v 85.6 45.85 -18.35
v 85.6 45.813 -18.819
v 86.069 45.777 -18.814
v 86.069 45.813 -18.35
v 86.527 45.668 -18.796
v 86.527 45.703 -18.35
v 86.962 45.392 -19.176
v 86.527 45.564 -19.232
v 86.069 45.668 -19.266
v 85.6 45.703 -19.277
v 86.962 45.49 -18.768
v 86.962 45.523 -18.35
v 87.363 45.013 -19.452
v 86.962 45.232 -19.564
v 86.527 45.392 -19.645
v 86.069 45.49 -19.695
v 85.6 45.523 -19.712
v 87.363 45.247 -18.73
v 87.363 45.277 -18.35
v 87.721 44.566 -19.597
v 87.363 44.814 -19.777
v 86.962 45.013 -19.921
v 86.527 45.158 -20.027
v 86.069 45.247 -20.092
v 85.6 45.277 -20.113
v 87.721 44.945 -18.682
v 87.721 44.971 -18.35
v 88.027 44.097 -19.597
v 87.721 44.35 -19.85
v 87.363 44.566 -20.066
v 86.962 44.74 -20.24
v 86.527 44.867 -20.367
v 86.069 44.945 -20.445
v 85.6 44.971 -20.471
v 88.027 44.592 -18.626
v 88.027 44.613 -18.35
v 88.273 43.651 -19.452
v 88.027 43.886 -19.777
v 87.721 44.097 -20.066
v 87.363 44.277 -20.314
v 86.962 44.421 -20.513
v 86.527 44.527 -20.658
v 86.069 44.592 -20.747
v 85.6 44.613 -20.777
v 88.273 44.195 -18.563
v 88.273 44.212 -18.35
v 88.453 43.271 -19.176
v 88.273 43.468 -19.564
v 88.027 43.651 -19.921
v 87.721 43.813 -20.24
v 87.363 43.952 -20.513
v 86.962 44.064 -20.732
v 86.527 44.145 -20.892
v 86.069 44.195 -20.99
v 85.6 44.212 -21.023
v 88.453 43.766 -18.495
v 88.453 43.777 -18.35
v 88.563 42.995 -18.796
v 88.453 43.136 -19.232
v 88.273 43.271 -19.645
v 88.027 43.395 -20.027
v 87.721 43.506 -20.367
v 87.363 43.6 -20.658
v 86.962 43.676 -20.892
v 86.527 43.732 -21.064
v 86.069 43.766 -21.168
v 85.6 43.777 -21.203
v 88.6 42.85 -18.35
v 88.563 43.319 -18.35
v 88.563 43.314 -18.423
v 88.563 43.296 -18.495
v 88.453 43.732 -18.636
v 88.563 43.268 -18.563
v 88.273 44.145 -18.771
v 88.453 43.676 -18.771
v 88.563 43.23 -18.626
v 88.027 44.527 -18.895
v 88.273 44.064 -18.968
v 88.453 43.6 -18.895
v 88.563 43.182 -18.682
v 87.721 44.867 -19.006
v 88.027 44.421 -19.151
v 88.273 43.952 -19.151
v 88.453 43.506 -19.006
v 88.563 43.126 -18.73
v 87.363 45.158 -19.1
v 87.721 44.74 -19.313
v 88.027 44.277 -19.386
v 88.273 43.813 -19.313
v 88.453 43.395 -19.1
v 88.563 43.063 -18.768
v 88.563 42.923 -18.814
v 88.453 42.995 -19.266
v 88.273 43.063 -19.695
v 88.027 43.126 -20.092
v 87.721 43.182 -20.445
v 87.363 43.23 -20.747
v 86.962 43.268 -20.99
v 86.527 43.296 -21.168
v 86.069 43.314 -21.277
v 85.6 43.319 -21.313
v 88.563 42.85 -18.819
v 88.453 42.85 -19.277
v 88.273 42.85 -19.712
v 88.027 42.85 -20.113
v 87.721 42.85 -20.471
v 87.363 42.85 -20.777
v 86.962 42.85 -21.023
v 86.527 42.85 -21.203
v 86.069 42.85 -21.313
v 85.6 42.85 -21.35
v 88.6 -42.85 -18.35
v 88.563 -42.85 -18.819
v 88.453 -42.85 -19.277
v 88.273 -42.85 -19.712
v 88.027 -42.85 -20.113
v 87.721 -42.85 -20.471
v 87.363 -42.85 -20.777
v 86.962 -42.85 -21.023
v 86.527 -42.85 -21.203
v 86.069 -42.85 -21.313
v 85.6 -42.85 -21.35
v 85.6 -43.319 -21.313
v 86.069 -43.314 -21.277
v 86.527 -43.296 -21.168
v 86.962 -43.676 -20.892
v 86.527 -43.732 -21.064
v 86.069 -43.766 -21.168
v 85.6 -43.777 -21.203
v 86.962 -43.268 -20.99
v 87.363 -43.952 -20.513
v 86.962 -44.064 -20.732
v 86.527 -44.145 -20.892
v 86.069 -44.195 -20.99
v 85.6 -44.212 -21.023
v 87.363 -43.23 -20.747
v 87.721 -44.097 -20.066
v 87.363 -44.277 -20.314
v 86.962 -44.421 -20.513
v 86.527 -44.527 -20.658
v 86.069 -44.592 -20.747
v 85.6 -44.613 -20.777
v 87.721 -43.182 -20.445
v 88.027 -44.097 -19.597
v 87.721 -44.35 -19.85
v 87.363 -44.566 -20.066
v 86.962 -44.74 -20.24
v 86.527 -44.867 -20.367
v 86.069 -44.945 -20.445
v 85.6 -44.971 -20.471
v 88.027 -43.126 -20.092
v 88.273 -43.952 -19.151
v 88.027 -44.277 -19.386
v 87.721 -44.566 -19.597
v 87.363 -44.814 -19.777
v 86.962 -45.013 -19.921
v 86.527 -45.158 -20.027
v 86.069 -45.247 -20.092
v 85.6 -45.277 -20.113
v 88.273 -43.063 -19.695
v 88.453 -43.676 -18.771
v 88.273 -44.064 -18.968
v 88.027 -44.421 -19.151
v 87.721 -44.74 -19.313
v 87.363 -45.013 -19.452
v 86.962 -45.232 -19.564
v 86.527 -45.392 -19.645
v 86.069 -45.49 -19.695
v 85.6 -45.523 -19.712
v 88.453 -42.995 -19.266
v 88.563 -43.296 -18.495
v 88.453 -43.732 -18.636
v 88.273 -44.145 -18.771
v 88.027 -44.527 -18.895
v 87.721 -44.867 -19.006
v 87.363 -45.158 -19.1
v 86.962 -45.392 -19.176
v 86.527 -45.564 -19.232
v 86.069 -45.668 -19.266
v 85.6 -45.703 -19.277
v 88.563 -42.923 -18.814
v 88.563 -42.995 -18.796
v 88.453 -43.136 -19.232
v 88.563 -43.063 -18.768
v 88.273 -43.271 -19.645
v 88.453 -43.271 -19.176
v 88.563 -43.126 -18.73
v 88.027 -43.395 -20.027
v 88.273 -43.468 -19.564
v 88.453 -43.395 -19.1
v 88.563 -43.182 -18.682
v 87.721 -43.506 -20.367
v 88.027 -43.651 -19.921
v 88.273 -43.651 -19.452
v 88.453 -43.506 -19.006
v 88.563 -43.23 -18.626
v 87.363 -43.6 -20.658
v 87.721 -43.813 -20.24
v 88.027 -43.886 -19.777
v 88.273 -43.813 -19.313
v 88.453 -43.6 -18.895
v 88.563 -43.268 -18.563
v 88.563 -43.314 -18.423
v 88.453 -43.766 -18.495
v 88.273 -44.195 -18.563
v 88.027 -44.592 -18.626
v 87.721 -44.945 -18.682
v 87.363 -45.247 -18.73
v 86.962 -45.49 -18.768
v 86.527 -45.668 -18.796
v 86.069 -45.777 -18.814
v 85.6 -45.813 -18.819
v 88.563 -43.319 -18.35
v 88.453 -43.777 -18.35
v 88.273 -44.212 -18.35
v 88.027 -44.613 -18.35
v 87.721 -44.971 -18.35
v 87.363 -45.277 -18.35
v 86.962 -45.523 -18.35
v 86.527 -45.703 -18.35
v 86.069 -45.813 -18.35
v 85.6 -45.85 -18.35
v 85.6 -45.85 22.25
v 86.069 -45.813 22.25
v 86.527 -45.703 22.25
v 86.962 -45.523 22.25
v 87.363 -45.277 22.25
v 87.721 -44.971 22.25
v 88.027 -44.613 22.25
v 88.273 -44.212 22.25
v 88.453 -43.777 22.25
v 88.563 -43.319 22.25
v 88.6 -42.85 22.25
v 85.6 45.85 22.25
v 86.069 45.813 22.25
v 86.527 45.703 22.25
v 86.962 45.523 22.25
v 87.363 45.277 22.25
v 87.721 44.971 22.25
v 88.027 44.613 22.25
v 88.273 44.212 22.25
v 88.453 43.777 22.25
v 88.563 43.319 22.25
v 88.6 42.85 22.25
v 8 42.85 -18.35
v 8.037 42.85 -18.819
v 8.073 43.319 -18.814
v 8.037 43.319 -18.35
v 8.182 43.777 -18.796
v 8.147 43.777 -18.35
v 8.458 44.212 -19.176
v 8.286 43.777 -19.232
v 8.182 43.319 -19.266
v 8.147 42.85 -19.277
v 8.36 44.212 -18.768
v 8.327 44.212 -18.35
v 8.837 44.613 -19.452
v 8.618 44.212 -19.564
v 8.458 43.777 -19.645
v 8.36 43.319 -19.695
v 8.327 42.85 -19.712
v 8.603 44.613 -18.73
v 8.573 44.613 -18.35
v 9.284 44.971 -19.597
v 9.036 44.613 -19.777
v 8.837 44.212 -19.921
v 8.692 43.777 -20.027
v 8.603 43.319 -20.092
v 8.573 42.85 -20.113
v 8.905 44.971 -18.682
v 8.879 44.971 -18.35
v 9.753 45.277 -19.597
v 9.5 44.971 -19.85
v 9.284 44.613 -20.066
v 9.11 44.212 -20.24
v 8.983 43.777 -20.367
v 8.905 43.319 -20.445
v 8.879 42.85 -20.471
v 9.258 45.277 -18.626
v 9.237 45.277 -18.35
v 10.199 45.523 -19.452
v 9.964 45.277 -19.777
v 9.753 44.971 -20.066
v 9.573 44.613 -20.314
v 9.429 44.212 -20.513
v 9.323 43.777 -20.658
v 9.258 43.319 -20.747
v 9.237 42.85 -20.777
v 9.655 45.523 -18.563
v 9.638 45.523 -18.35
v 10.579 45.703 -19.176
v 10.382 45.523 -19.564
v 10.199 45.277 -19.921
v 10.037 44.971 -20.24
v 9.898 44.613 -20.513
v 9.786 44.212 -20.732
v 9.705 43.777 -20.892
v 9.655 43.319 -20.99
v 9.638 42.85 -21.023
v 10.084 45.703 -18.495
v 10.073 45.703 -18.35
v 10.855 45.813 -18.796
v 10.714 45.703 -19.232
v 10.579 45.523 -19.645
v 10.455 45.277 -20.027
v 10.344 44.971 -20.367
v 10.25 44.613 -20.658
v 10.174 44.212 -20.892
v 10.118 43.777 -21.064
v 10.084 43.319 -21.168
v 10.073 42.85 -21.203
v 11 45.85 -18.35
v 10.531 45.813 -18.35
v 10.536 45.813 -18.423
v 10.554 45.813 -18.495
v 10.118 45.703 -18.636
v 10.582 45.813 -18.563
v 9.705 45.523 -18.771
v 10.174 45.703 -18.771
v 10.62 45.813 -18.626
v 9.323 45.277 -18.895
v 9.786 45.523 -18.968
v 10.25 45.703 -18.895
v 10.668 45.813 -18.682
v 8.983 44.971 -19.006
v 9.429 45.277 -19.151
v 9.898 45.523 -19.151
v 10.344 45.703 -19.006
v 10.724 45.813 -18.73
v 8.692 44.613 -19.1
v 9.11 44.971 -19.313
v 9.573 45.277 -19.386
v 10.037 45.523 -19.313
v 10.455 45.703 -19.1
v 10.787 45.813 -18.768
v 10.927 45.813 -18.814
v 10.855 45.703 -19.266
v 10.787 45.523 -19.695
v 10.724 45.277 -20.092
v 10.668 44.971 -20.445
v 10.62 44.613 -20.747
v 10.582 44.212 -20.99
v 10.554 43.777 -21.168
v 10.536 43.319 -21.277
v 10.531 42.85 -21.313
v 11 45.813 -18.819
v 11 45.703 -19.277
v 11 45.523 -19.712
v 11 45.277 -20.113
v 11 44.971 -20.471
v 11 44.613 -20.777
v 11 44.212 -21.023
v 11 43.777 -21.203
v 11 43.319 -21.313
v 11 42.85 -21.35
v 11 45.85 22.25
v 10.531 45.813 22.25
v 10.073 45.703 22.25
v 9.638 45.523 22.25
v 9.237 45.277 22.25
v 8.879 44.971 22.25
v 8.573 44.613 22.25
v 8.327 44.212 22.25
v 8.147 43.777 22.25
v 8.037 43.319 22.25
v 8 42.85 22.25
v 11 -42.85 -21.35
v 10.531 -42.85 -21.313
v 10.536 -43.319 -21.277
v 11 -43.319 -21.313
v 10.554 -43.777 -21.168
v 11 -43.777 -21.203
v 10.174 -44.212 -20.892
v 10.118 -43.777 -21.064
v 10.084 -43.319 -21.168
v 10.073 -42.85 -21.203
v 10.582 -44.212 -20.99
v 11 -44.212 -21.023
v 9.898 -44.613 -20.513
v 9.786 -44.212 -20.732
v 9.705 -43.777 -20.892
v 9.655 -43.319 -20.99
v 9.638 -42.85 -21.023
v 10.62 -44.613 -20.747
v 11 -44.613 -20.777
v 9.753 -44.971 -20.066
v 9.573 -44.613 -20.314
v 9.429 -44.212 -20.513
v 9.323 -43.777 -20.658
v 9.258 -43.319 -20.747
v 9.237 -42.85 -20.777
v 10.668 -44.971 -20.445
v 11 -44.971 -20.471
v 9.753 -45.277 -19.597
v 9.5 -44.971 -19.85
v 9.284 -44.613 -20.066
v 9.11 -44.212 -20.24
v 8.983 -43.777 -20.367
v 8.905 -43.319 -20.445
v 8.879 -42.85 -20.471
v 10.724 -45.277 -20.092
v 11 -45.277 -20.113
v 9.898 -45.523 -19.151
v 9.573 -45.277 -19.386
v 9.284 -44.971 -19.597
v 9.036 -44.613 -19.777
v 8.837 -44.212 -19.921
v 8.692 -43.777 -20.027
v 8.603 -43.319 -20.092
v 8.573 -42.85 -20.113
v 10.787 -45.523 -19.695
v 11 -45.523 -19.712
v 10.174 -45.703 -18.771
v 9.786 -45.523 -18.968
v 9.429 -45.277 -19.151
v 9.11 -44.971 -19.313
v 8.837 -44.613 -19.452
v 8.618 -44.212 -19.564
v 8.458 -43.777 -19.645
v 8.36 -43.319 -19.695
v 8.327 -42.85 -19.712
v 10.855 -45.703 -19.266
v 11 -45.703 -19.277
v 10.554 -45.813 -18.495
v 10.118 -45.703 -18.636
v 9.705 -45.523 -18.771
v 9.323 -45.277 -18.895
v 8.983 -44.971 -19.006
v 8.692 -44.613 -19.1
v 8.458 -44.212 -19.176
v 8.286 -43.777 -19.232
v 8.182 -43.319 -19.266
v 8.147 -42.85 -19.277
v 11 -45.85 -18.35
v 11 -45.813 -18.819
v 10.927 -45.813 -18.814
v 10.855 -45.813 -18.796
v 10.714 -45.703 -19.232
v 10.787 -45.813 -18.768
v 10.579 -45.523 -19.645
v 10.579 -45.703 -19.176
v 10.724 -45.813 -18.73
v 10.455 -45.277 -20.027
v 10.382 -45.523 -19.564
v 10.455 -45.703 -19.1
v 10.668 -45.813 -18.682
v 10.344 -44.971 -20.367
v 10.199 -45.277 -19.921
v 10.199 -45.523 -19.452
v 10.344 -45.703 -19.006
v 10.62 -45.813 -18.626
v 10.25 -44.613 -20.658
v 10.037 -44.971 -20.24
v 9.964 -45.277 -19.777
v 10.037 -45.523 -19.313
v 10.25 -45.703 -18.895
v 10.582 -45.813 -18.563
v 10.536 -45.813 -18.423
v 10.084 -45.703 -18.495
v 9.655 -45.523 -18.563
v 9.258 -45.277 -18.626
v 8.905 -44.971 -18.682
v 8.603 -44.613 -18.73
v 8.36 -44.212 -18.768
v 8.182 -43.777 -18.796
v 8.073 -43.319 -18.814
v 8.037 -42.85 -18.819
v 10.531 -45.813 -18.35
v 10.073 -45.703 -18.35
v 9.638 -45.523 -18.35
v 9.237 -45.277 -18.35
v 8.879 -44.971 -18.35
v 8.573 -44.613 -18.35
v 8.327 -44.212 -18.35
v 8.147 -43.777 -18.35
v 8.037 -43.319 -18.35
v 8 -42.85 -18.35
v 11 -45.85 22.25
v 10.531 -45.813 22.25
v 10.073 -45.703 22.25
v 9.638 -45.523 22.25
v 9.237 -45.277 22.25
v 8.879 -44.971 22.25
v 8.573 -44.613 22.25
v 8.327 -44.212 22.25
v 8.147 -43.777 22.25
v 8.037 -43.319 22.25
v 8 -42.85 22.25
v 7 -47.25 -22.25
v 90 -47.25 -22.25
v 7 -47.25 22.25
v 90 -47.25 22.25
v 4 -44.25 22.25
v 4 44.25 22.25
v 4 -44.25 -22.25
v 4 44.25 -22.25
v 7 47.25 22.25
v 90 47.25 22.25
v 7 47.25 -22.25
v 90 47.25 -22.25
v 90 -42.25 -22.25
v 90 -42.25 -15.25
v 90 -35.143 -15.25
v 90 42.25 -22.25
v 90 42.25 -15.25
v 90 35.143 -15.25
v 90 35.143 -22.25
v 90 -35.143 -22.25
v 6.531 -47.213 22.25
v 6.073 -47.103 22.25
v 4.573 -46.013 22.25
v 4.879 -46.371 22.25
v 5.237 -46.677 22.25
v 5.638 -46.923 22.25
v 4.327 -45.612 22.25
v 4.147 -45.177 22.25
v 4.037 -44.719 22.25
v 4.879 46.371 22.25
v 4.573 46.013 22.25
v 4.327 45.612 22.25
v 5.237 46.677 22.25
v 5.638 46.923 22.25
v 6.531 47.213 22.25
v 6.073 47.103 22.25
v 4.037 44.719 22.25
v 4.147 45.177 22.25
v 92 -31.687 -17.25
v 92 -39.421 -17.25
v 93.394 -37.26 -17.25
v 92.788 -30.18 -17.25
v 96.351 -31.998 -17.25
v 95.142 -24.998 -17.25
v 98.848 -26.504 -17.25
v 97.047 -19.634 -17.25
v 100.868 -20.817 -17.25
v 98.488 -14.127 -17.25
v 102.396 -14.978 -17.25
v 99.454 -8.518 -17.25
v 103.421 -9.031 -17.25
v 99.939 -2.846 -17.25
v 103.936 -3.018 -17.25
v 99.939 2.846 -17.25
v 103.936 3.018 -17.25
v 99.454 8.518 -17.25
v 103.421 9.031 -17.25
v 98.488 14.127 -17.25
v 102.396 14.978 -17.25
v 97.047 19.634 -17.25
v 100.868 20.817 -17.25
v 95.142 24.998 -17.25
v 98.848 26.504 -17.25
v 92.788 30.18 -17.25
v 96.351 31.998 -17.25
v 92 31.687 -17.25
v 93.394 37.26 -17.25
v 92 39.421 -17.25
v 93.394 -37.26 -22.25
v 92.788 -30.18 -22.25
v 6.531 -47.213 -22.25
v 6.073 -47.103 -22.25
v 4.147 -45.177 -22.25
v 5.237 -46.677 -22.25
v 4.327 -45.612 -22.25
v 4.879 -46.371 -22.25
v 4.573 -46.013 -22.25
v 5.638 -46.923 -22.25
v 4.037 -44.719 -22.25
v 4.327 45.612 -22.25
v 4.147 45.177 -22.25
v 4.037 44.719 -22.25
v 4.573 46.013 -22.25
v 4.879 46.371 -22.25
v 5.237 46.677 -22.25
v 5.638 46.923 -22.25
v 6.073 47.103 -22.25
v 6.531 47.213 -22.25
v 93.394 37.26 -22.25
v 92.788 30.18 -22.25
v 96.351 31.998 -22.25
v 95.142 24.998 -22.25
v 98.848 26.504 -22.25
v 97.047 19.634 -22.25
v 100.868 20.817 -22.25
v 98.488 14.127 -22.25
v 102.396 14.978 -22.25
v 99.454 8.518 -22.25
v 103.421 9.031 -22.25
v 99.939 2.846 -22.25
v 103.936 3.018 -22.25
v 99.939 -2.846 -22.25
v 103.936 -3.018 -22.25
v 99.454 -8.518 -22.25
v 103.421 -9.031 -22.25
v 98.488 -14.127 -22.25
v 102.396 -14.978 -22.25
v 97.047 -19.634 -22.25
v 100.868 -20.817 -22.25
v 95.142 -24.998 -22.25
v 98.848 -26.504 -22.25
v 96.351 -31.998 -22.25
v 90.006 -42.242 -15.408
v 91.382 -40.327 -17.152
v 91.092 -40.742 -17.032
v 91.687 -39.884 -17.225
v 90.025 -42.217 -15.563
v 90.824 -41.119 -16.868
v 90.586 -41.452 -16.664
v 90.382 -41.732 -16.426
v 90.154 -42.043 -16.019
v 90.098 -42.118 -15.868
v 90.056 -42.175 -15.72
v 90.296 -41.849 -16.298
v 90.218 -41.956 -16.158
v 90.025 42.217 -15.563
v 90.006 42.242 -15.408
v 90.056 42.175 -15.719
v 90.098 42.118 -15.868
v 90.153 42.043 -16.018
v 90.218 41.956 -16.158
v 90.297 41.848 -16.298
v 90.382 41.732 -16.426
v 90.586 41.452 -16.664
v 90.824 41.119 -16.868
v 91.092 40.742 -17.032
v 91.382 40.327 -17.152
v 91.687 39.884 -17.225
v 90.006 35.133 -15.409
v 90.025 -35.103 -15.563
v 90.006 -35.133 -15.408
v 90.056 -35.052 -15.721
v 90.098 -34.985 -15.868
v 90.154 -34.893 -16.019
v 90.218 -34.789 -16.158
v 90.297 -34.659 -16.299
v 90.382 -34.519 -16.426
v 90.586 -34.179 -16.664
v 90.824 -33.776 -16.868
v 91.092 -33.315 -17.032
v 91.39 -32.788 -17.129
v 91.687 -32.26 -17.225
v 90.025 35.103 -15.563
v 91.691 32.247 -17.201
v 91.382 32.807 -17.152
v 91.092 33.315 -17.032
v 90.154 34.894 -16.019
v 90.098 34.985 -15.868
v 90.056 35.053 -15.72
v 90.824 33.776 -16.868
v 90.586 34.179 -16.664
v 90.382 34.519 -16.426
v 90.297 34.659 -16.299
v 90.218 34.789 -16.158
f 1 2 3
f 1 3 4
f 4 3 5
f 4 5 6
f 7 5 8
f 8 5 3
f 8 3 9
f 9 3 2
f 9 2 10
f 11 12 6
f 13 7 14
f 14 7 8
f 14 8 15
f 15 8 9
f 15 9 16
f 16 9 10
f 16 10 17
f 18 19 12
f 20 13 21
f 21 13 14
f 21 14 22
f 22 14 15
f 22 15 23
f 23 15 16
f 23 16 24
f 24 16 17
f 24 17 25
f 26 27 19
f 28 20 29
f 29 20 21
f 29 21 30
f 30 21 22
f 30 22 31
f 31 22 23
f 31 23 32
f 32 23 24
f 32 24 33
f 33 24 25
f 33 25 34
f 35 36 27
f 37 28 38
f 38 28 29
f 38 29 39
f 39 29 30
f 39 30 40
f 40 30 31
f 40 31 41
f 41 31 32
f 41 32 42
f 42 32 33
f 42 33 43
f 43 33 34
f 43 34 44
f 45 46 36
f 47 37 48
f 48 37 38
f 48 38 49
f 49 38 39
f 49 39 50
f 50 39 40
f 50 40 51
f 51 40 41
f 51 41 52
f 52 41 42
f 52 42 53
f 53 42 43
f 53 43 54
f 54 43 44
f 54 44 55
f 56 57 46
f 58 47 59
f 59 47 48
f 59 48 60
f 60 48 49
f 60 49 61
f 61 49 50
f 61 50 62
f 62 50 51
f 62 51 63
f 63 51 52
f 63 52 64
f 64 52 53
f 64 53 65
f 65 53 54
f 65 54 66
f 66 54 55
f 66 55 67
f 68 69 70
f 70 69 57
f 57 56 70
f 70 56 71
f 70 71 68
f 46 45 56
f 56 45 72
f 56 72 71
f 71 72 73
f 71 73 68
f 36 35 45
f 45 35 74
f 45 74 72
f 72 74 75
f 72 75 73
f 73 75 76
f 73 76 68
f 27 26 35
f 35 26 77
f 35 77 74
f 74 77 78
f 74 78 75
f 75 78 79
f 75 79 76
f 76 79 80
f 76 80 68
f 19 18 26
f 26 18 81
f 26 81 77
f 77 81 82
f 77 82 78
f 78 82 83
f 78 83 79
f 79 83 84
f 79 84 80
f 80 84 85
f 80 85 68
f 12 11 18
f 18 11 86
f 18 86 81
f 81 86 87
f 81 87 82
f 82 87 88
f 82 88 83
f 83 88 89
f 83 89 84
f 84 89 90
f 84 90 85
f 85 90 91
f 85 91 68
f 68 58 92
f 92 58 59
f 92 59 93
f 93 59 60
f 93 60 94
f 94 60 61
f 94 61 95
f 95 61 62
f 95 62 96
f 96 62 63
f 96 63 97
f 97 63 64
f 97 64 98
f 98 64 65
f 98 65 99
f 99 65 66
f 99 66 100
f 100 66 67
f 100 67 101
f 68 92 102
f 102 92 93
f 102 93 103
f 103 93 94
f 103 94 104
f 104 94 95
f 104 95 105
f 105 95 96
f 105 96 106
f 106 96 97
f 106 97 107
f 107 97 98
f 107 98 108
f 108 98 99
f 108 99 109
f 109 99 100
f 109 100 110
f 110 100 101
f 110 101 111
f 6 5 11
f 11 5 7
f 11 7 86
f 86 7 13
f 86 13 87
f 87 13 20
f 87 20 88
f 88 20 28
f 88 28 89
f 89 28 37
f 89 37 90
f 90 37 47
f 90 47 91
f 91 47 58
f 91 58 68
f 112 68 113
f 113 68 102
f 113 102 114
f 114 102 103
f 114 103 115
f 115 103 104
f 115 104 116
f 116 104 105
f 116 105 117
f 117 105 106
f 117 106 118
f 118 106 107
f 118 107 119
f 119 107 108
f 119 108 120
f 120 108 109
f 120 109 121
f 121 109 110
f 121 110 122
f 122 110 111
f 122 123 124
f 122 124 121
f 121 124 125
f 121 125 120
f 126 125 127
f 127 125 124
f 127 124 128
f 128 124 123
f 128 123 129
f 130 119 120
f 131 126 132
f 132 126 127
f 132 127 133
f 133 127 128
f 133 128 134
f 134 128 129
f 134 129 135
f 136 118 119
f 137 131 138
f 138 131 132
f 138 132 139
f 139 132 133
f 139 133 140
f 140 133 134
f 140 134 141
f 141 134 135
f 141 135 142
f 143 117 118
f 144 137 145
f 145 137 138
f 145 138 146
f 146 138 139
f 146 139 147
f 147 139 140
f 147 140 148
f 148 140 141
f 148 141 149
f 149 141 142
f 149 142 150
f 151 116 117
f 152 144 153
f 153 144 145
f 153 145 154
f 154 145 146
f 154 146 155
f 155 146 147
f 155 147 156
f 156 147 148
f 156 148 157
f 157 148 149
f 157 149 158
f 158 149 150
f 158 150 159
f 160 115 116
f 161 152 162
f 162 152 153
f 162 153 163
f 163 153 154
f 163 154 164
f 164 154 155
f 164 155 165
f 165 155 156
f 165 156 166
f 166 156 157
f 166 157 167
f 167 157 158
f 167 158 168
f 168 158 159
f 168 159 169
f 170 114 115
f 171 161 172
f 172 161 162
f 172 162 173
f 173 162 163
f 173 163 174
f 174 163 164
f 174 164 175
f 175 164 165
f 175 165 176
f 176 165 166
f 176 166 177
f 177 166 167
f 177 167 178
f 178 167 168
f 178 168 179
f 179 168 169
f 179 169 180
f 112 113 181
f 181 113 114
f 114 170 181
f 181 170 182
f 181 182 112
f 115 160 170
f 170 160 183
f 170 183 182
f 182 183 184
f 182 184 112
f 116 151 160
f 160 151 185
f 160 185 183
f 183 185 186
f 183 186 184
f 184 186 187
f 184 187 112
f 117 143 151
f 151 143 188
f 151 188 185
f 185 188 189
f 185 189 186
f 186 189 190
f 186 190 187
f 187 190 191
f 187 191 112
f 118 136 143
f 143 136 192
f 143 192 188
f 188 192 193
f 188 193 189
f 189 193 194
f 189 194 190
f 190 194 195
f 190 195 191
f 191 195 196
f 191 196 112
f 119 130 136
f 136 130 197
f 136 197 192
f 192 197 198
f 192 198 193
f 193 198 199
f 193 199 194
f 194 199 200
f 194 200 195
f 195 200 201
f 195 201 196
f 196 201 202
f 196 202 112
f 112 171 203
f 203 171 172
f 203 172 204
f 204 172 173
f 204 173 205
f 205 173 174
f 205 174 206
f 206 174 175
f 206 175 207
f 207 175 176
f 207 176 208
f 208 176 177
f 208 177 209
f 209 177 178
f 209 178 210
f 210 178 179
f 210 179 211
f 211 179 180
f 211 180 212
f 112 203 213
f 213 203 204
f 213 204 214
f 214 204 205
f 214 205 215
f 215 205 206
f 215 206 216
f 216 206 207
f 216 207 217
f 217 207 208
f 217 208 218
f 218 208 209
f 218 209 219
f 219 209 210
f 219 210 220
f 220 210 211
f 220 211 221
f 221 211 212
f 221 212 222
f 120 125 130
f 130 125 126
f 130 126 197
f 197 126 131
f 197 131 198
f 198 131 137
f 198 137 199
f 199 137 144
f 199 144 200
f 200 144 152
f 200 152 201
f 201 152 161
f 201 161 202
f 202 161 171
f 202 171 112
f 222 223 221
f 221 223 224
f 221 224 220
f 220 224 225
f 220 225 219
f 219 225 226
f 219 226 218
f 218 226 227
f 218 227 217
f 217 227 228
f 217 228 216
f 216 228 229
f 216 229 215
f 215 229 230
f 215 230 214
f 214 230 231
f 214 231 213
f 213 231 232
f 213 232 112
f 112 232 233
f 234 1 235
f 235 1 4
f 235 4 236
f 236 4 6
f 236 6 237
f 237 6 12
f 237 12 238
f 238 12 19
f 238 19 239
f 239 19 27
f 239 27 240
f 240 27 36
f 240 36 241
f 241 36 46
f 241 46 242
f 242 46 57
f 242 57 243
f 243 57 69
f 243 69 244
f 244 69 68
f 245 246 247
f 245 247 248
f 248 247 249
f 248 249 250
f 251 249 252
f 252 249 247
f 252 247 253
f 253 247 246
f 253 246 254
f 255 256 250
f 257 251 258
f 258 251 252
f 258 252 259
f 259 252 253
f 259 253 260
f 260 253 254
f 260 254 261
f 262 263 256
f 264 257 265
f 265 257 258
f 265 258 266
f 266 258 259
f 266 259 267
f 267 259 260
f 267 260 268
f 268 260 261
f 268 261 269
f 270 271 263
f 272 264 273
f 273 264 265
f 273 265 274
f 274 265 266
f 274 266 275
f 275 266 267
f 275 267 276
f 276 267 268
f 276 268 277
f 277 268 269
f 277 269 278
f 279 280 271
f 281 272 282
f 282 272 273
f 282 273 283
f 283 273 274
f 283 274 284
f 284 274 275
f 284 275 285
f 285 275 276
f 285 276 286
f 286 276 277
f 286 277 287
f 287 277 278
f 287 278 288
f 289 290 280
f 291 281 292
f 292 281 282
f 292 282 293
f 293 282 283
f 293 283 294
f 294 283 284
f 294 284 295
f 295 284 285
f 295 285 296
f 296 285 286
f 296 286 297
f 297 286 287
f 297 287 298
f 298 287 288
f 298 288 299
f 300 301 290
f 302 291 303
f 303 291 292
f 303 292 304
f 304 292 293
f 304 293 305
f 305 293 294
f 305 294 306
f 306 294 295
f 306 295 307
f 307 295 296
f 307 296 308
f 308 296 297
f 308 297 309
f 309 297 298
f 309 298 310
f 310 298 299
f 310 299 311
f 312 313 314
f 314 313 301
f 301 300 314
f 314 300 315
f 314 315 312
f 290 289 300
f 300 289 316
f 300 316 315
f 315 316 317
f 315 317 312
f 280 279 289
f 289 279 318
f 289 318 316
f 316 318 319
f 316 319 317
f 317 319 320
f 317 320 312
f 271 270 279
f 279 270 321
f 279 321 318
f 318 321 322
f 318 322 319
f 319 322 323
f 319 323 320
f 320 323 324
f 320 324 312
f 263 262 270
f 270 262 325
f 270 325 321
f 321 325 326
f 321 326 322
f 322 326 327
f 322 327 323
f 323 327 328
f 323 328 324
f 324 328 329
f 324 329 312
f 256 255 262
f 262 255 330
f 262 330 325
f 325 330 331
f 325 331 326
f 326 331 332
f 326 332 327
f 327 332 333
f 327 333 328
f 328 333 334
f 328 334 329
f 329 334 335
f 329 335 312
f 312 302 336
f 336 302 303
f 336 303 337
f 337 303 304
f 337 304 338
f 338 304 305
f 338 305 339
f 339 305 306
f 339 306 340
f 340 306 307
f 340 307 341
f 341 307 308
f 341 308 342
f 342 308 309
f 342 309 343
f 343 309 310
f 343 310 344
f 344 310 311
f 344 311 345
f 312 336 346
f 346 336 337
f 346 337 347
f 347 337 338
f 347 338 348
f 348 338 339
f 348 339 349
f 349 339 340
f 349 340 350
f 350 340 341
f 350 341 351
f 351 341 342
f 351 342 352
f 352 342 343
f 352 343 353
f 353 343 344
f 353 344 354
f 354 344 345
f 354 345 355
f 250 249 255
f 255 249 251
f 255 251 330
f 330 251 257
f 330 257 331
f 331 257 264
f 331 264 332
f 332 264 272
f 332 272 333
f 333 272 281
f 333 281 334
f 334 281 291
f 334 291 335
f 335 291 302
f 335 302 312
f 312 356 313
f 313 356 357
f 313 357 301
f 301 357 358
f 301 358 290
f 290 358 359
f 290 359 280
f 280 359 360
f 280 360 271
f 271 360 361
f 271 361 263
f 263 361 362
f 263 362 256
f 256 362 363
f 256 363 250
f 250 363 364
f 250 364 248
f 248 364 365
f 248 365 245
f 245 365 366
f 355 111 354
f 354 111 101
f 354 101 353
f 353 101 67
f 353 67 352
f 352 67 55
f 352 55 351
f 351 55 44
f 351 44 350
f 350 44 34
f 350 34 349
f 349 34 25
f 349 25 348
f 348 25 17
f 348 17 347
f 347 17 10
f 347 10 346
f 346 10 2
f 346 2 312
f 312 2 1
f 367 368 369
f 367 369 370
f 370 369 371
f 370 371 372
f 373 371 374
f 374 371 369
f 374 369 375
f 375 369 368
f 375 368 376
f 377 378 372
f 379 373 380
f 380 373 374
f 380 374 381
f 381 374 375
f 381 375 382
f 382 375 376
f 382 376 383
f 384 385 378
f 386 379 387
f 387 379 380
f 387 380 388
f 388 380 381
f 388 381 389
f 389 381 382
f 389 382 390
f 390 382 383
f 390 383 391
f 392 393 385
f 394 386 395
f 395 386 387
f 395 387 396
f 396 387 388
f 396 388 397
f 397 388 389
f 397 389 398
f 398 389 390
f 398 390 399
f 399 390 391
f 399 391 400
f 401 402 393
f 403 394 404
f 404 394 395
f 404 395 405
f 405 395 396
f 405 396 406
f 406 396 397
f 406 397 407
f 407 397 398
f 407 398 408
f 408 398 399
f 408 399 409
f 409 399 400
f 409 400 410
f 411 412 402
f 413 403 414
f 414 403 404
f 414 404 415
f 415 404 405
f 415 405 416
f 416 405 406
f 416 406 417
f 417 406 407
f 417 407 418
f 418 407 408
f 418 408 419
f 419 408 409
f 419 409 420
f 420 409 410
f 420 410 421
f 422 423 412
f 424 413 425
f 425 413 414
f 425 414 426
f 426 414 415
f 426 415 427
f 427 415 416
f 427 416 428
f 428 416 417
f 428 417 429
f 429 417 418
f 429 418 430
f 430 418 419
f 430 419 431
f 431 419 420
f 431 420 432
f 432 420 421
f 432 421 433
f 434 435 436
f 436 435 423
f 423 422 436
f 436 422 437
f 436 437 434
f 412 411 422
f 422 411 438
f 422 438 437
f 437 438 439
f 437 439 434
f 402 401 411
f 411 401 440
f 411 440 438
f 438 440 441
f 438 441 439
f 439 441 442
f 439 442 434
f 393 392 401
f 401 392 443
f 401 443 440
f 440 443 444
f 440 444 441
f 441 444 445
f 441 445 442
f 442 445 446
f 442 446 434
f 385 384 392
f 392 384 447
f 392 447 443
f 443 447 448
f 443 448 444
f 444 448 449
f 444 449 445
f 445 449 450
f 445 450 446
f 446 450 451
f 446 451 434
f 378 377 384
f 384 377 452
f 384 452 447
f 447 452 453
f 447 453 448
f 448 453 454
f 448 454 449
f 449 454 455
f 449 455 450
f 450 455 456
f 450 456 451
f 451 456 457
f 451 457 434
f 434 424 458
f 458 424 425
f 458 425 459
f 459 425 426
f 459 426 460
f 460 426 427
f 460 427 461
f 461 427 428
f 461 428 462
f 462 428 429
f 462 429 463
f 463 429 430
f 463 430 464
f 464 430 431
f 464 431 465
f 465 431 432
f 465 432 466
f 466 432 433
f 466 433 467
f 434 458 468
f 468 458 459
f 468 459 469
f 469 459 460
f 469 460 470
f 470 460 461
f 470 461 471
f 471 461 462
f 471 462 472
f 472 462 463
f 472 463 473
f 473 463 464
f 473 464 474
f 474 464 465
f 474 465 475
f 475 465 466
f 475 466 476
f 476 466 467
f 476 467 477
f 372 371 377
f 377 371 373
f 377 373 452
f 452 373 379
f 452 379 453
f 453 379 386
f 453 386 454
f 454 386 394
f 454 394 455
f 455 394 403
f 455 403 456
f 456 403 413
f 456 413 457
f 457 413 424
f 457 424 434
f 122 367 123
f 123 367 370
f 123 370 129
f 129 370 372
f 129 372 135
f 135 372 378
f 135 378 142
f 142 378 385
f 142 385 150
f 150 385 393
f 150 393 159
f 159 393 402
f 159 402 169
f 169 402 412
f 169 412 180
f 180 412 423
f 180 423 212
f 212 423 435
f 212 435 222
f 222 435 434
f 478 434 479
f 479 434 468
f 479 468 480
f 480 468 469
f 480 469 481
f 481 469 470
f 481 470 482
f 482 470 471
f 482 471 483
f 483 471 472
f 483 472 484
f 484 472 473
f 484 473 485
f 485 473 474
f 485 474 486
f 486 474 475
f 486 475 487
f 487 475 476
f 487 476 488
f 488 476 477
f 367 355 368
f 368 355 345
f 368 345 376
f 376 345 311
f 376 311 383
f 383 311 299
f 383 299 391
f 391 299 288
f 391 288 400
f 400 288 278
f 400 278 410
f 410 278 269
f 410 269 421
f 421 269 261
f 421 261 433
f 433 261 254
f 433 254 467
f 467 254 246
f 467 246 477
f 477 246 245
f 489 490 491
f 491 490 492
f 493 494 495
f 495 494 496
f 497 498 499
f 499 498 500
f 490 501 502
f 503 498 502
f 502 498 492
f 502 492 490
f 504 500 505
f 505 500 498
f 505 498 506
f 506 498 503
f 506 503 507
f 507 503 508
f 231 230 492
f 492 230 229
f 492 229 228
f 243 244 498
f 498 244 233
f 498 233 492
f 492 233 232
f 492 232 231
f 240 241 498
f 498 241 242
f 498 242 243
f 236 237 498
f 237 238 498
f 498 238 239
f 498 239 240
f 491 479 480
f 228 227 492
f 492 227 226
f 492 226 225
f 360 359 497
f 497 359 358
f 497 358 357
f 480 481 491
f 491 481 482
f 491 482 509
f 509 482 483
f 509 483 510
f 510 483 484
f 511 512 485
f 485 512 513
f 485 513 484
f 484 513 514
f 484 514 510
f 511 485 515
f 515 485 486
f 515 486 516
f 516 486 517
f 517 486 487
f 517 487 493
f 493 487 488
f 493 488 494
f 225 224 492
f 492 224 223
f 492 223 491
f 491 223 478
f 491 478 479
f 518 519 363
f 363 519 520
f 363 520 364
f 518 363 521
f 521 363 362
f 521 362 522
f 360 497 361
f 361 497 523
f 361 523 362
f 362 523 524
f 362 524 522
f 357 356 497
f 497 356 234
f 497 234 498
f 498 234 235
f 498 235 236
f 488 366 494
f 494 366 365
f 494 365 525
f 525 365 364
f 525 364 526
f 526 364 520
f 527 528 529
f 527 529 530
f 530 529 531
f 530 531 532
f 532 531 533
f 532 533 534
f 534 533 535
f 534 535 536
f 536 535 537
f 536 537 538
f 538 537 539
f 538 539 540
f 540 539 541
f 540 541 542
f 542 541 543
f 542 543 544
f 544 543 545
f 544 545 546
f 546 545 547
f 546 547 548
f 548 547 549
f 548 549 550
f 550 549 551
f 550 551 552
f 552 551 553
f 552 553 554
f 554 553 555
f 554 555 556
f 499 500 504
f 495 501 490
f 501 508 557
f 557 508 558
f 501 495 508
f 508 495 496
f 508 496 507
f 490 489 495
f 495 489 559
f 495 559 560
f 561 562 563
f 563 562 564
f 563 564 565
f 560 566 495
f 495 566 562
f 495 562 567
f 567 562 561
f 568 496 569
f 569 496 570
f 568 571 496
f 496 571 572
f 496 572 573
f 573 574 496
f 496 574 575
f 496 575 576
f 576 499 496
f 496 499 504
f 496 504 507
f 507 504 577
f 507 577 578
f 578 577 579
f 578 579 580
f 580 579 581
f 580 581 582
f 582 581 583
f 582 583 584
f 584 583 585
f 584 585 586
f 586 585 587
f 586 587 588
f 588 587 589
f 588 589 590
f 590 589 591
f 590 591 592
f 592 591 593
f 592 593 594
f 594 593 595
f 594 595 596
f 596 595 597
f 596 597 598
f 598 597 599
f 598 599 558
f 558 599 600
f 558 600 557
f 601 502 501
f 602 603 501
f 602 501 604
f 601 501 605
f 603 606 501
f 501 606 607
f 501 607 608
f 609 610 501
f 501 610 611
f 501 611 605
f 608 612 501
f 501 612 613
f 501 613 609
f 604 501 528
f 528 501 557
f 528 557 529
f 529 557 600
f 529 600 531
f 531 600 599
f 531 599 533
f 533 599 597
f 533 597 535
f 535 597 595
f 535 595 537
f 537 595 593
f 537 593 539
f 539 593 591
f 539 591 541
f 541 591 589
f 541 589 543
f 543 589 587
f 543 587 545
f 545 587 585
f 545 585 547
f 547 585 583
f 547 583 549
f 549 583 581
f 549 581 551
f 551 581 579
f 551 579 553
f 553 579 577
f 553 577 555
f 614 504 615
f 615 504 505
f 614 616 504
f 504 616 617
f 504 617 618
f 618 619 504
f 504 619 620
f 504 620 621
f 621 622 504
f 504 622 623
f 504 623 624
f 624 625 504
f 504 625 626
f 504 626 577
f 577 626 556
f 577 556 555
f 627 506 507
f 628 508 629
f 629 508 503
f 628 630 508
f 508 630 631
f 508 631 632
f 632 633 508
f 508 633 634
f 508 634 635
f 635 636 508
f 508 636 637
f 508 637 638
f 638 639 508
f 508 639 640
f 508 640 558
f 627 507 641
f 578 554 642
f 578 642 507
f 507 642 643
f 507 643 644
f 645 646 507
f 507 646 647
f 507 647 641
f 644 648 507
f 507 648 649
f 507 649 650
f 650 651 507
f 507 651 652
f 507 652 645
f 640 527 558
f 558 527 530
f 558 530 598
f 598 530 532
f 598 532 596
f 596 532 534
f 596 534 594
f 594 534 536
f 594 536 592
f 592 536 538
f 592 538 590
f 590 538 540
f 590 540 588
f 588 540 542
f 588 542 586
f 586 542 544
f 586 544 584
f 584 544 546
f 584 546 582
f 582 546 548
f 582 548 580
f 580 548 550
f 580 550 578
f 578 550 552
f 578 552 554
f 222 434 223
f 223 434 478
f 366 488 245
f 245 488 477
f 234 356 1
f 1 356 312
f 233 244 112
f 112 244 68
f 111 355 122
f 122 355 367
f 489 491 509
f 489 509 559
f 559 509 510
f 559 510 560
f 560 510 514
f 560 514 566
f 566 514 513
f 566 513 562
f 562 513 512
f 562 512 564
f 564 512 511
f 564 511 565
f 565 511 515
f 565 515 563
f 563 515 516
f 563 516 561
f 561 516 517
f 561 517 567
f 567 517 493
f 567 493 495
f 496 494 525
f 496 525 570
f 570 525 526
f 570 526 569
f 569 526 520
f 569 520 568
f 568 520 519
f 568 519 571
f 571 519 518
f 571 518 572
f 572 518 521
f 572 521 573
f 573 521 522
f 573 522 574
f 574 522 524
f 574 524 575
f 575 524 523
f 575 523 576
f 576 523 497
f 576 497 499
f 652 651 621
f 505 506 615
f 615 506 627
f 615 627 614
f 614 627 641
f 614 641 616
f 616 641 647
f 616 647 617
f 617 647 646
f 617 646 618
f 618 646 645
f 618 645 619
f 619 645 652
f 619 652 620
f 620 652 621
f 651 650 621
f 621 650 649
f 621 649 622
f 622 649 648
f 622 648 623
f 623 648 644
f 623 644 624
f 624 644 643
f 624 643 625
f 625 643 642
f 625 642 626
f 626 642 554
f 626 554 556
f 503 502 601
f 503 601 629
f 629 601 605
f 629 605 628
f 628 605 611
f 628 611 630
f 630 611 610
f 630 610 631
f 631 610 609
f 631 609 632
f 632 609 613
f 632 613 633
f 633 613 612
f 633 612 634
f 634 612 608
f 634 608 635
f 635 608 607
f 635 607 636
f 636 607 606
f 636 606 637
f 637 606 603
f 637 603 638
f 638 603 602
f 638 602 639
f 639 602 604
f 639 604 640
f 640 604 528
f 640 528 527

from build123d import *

# Parameters (mm, degrees)
SKETCH_1_W                  = 86
SKETCH_1_H                  = 94.5
EXTRUDE_1_DEPTH             = 39.5
EXTRUDE_2_DEPTH             = 5
SKETCH_3_W                  = 80.6
SKETCH_3_H                  = 91.7
CUT_EXTRUDE_1_DEPTH         = 43.6
HOLE_WIZARD_8_3_8_3_1_D     = 8.3
HOLE_WIZARD_8_3_8_3_1_DEPTH = 3.2
FILLET_1_R                  = 3
SKETCH_7_R                  = 4.2
EXTRUDE_3_DEPTH             = 3.8
FILLET_2_R                  = 3
FILLET_3_R                  = 3
FILLET_4_R                  = 3
FILLET_5_R                  = 3
FILLET_6_R                  = 2


with BuildPart() as part:
    # Эскиз1 → Бобышка-Вытянуть1 (new body)
    with BuildSketch(Plane.XY.offset(22.25)):
        with Locations((47, 0)):
            Rectangle(SKETCH_1_W, SKETCH_1_H)
    extrude(amount=-EXTRUDE_1_DEPTH)

    # Эскиз2 → Бобышка-Вытянуть2 (add)
    with BuildSketch(Plane(origin=(0, 0, -17.25), x_dir=(-1, 0, 0), z_dir=(0, 0, -1))):
        with BuildLine():
            Line((-90, -47.25), (-90, -42.25))
            ThreePointArc((-90, -42.25), (-104, 0), (-90, 42.25))
            Line((-90, 42.25), (-90, 47.25))
            Line((-90, 47.25), (-4, 47.25))
            Line((-4, 47.25), (-4, -47.25))
            Line((-4, -47.25), (-90, -47.25))
        make_face()
        with BuildLine():
            Line((-90, -35.143201944), (-90, 35.143201944))
            ThreePointArc((-90, 35.143201944), (-100, 0), (-90, -35.143201944))
        make_face(mode=Mode.SUBTRACT)
    extrude(amount=EXTRUDE_2_DEPTH)

    # Эскиз3 → Вырез-Вытянуть1 (cut)
    with BuildSketch(Plane.XY.offset(22.25)):
        with Locations((48.3, 0)):
            Rectangle(SKETCH_3_W, SKETCH_3_H)
    extrude(amount=-CUT_EXTRUDE_1_DEPTH, mode=Mode.SUBTRACT)

    # Диаметр отверстия Ø8.3 (8.3)1
    with Locations(Plane.ZY.offset(-4)):
        with Locations((0, 0)):
            Hole(HOLE_WIZARD_8_3_8_3_1_D / 2, depth=HOLE_WIZARD_8_3_8_3_1_DEPTH)

    # Скругление1
    fillet_1_edges = [part.edges().sort_by_distance(p)[0] for p in [
        (4, -47.25, 0),
        (4, 47.25, 0),
    ]]
    fillet(fillet_1_edges, radius=FILLET_1_R)

    # Эскиз7 → Бобышка-Вытянуть3 (add)
    with BuildSketch(Plane.ZY.offset(-4)):
        Circle(SKETCH_7_R)
    extrude(amount=-EXTRUDE_3_DEPTH)

    # Скругление2
    fillet_2_edges = [part.edges().sort_by_distance(p)[0] for p in [
        (8, 0, -21.35),
    ]]
    fillet(fillet_2_edges, radius=FILLET_2_R)

    # Скругление3
    fillet_3_edges = [part.edges().sort_by_distance(p)[0] for p in [
        (8, -45.85, 1.95),
        (49.8, -45.85, -21.35),
        (8.878679656, -45.85, -20.471320344),
    ]]
    fillet(fillet_3_edges, radius=FILLET_3_R)

    # Скругление4
    fillet_4_edges = [part.edges().sort_by_distance(p)[0] for p in [
        (49.8, 45.85, -21.35),
        (8, 45.85, 1.95),
        (8.878679656, 45.85, -20.471320344),
    ]]
    fillet(fillet_4_edges, radius=FILLET_4_R)

    # Скругление5
    fillet_5_edges = [part.edges().sort_by_distance(p)[0] for p in [
        (88.6, -45.85, 1.95),
        (88.6, 0, -21.35),
        (88.6, -44.971320344, -20.471320344),
        (88.6, 45.85, 1.95),
        (88.6, 44.971320344, -20.471320344),
    ]]
    fillet(fillet_5_edges, radius=FILLET_5_R)

    # Скругление6
    fillet_6_edges = [part.edges().sort_by_distance(p)[0] for p in [
        (90, -38.696600972, -17.25),
        (90, 38.696600972, -17.25),
    ]]
    fillet(fillet_6_edges, radius=FILLET_6_R)


solid = part.part
